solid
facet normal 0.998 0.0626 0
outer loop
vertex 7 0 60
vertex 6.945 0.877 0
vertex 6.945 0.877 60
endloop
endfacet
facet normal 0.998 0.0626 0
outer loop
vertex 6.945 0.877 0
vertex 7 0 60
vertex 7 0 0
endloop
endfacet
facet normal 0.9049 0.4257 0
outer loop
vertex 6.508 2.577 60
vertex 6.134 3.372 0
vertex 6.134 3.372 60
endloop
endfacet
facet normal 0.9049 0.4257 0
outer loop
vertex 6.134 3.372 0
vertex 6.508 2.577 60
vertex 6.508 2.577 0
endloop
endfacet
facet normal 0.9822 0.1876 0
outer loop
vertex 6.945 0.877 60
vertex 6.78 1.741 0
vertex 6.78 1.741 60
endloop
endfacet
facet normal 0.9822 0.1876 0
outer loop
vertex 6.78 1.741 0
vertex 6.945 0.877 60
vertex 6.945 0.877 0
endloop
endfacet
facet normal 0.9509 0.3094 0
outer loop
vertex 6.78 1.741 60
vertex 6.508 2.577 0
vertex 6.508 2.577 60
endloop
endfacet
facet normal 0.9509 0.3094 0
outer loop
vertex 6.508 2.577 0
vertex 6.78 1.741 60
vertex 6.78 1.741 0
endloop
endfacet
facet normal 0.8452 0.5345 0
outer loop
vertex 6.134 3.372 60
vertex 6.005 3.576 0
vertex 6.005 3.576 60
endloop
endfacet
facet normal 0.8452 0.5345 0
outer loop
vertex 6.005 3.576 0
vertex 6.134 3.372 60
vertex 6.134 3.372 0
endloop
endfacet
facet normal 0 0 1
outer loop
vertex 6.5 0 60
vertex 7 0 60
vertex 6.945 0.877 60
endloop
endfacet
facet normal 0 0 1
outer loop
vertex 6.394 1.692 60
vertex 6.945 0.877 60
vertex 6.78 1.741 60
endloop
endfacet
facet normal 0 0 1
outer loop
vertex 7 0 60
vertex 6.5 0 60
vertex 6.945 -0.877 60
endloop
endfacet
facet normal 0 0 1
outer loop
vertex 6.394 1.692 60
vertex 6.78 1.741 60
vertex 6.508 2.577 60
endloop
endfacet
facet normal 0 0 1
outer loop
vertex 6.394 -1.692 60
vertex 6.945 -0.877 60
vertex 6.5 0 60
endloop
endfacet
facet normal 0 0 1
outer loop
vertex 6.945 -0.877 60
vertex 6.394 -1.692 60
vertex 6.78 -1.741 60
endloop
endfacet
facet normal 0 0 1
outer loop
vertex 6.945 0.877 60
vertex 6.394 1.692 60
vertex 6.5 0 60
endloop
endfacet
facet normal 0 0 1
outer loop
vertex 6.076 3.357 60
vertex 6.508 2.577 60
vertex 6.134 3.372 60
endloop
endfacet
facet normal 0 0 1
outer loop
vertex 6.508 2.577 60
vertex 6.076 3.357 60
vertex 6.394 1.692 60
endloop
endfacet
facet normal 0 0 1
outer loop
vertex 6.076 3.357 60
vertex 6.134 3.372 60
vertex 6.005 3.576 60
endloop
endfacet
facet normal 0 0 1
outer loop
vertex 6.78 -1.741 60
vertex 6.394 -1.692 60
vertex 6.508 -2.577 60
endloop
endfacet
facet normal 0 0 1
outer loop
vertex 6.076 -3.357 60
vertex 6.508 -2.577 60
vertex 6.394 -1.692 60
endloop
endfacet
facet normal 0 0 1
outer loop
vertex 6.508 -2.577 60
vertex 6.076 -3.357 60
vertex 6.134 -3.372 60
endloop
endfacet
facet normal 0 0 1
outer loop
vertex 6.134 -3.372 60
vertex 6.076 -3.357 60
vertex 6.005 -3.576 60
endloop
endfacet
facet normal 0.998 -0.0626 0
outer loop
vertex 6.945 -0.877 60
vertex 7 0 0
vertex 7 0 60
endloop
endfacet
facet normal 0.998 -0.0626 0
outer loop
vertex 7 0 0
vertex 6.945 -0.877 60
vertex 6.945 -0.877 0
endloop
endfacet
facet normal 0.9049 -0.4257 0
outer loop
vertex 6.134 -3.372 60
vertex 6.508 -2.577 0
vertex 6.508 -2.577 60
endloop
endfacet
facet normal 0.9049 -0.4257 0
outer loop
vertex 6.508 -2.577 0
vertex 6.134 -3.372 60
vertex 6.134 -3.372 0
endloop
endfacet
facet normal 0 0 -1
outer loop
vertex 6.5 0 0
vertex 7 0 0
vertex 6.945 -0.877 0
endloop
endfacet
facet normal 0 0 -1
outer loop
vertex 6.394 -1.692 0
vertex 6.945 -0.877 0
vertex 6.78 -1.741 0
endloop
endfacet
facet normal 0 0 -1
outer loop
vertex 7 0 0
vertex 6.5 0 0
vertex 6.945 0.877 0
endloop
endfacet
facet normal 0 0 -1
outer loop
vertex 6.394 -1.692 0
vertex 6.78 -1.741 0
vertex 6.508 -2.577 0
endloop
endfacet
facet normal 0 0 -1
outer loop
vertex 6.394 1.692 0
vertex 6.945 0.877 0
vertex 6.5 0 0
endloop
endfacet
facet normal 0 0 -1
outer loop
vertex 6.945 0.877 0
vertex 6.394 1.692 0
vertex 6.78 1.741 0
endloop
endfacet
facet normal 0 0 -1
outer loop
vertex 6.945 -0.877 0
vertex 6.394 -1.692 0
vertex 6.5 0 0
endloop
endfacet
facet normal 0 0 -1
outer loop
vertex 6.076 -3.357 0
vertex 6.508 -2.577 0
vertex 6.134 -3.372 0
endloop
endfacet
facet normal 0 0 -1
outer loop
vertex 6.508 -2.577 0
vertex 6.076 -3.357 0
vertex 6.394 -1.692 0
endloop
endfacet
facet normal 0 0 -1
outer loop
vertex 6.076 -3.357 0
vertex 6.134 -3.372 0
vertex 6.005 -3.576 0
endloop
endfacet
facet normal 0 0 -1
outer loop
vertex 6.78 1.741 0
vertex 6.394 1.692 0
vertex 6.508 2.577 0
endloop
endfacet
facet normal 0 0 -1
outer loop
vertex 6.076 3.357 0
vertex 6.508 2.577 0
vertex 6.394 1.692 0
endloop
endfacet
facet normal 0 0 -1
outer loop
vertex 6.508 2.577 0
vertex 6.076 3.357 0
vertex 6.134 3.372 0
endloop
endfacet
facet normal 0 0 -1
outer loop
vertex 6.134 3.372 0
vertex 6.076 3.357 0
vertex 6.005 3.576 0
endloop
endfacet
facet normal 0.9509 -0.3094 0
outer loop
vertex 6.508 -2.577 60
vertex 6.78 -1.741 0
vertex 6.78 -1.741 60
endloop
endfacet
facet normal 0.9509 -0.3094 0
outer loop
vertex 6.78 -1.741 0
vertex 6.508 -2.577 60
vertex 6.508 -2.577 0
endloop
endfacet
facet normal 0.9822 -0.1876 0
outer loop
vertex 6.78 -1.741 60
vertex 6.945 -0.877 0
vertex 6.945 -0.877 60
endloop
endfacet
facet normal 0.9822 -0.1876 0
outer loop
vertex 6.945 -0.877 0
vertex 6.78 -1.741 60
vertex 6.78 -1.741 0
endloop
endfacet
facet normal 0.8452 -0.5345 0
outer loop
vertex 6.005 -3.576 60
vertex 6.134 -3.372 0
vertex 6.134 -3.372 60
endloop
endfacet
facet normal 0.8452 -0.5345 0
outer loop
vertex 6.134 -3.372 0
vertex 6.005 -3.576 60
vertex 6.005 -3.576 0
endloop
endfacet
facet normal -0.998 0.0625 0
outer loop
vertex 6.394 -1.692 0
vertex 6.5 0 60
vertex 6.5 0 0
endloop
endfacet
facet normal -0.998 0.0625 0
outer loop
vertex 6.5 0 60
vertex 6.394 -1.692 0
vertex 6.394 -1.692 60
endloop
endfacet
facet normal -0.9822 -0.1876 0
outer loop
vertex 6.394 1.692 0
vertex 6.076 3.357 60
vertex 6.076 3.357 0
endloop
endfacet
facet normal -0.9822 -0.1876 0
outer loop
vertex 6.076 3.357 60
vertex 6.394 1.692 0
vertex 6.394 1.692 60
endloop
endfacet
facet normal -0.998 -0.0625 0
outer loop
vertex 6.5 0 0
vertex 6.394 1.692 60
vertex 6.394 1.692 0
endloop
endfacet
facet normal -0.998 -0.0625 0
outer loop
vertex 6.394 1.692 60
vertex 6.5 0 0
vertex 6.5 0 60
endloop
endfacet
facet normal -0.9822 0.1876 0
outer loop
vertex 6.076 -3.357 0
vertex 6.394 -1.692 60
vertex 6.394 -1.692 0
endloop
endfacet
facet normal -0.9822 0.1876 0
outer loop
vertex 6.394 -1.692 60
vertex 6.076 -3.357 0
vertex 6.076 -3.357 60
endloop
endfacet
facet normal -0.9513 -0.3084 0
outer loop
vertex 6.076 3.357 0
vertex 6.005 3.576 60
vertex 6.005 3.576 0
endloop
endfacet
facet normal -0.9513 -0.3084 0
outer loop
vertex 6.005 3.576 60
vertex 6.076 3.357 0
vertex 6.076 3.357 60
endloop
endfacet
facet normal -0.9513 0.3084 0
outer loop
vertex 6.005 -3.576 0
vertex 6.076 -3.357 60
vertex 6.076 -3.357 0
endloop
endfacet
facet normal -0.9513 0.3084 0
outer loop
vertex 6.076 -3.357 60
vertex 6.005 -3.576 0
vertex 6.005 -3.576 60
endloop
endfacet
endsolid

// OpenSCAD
$fn = 50;


difference() {
	union() {
		cylinder(h = 60, r = 7.0000000000);
		translate(v = [-10.0000000000, 0, 0]) {
			cylinder(h = 60, r = 7.0000000000);
		}
	}
	union() {
		cylinder(h = 60, r = 3.2500000000);
		cylinder(h = 60, r = 1.8000000000);
		cylinder(h = 60, r = 1.8000000000);
		cylinder(h = 60, r = 1.8000000000);
		translate(v = [-14.5000000000, 0, 0]) {
			hull() {
				translate(v = [-3.7500000000, 0.0000000000, 0]) {
					cylinder(h = 60, r = 7.5000000000);
				}
				translate(v = [3.7500000000, 0.0000000000, 0]) {
					cylinder(h = 60, r = 7.5000000000);
				}
				translate(v = [-3.7500000000, -0.0000000000, 0]) {
					cylinder(h = 60, r = 7.5000000000);
				}
				translate(v = [3.7500000000, -0.0000000000, 0]) {
					cylinder(h = 60, r = 7.5000000000);
				}
			}
		}
		translate(v = [-7.0000000000, 0, 0.0000000000]) {
			cylinder(h = 60, r = 13.5000000000);
		}
	}
}
